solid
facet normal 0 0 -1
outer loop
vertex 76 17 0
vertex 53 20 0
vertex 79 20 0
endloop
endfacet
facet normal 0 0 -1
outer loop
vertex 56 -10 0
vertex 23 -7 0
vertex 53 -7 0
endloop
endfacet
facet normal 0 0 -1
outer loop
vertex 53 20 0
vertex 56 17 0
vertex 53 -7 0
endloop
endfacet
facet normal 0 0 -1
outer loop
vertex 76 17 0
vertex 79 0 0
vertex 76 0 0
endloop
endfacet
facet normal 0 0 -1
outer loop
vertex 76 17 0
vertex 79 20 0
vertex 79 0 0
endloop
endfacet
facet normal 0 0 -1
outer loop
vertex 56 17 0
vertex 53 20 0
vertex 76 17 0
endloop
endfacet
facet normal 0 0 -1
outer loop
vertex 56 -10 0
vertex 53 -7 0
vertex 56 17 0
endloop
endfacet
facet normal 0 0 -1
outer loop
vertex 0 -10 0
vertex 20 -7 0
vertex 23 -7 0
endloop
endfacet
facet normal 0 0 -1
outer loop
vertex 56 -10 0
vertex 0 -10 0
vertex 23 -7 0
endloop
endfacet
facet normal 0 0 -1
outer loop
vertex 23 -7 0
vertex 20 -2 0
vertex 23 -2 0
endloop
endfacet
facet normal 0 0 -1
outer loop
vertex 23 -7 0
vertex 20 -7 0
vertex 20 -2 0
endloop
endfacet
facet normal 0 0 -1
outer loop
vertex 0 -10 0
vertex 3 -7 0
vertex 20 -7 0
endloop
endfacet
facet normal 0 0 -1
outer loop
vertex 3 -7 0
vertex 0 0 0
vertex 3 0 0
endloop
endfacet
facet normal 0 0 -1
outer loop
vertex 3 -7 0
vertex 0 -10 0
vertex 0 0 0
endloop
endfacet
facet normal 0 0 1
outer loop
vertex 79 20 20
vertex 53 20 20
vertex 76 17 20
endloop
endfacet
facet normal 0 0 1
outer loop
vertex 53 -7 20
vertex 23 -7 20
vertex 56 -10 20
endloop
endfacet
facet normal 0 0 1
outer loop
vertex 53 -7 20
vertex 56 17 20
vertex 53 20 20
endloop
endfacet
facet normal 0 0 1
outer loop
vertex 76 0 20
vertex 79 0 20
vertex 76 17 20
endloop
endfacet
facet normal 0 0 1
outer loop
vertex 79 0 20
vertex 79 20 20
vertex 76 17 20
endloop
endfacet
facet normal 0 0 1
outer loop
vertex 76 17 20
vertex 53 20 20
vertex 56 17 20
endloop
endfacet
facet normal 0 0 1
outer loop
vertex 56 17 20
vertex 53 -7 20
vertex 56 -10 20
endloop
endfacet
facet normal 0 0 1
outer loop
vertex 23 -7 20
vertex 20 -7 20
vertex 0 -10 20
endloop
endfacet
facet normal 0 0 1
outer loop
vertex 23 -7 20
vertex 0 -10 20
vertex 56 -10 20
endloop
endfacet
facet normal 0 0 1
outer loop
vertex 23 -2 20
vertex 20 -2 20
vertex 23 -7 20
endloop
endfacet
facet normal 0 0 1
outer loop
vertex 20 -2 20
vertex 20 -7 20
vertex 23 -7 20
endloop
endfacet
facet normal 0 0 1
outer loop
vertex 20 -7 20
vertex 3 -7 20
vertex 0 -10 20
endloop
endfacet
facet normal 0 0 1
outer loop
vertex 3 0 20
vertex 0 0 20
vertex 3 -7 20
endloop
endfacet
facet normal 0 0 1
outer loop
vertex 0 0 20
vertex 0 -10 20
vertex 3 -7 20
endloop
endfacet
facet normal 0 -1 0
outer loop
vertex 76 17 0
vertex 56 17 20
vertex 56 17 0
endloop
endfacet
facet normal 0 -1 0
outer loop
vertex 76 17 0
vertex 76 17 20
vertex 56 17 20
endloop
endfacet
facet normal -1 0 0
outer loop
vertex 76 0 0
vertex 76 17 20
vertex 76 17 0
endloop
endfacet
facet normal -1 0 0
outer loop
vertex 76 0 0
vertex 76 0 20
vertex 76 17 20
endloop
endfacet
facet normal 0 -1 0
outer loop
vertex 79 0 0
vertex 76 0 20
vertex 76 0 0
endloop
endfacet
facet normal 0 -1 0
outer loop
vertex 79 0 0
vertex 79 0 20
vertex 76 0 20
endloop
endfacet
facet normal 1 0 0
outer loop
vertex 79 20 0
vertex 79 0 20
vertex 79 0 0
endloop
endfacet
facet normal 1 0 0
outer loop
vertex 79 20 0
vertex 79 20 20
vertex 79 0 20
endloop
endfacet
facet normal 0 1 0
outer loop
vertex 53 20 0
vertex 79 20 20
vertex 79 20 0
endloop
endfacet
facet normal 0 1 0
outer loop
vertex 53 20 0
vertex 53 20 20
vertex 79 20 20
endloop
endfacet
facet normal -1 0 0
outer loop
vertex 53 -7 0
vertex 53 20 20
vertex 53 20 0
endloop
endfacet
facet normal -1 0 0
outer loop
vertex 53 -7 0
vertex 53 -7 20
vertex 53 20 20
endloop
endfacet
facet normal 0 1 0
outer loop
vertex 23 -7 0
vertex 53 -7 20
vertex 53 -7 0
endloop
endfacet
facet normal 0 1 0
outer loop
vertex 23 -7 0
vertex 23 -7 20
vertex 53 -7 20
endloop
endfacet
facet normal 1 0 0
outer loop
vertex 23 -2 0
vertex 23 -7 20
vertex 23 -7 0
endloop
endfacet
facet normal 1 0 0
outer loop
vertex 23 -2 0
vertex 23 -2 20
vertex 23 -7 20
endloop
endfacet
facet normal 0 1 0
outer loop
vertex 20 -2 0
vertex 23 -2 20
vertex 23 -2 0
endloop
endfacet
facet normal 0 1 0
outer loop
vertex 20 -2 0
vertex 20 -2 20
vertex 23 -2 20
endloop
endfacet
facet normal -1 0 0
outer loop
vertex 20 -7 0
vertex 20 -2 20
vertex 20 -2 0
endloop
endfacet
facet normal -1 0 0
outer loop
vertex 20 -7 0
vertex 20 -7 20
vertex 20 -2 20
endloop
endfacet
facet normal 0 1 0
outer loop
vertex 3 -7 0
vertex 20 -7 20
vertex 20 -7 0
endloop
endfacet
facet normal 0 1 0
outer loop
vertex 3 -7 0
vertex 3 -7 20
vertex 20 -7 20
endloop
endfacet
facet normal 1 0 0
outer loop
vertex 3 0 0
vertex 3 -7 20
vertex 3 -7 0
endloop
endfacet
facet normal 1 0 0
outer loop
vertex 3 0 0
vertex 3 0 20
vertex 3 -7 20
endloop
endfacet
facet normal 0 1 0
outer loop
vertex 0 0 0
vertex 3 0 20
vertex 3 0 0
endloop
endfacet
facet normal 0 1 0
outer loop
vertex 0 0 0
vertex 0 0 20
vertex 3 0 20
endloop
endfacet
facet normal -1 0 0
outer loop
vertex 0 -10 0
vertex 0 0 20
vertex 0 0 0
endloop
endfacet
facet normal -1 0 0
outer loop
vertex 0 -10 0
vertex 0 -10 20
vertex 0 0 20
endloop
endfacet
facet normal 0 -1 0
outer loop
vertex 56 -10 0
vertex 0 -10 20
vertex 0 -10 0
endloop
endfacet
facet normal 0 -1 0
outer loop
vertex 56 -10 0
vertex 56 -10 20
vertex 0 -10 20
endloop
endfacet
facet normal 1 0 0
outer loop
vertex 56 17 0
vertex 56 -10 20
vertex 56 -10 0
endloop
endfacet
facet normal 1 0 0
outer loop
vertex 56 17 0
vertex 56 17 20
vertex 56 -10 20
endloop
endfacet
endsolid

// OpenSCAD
// haczyk.scad
// Haczyk (hook / open bracket) modelled from the hand sketch haczyk.png
//
// Interpretation of the dimensions written on the drawing:
//   53 mm  - outer width          (50 inner + 3 wall)
//   50 mm  - inner width
//   20 mm  - height of the tall (right) wall
//   10 mm  - height of the short (left) wall
//    3 mm  - material thickness
//   20 mm  - depth (extrusion), taken from the top view
// The two unlabelled-looking values (17 and 5) are approximations of the
// inner step shown at the bottom of the profile; adjust foot_len / lip
// below if your reading differs.

// ----- parameters -----
t        = 3;    // material thickness
inner    = 50;   // inner width
wall_hi  = 20;   // tall wall height
wall_lo  = 10;   // short wall height
depth    = 20;   // extrusion depth
foot_len = 17;   // inner length of the floor step
lip      = 5;    // inner lip height at the short wall

outer = inner + t;   // 53

// 2D cross section of the hook, drawn in the XZ plane
module profile() {
    polygon(points = [
        [0,           0],           // outer 
        [0,       -10],         
        [56, -10]  ,
        [56, 17]   ,
        [76,17],
        [76,0],
        [79,0],
        [79,20],
        [53,20],
        [53,-7],
        [23,-7],
        [23, -2],
        [20, -2],
        [20, -7],
        [3,-7],
        [3,0]
    ]);
}

// ----- model -----
linear_extrude(height = depth, convexity = 10)
    profile();
